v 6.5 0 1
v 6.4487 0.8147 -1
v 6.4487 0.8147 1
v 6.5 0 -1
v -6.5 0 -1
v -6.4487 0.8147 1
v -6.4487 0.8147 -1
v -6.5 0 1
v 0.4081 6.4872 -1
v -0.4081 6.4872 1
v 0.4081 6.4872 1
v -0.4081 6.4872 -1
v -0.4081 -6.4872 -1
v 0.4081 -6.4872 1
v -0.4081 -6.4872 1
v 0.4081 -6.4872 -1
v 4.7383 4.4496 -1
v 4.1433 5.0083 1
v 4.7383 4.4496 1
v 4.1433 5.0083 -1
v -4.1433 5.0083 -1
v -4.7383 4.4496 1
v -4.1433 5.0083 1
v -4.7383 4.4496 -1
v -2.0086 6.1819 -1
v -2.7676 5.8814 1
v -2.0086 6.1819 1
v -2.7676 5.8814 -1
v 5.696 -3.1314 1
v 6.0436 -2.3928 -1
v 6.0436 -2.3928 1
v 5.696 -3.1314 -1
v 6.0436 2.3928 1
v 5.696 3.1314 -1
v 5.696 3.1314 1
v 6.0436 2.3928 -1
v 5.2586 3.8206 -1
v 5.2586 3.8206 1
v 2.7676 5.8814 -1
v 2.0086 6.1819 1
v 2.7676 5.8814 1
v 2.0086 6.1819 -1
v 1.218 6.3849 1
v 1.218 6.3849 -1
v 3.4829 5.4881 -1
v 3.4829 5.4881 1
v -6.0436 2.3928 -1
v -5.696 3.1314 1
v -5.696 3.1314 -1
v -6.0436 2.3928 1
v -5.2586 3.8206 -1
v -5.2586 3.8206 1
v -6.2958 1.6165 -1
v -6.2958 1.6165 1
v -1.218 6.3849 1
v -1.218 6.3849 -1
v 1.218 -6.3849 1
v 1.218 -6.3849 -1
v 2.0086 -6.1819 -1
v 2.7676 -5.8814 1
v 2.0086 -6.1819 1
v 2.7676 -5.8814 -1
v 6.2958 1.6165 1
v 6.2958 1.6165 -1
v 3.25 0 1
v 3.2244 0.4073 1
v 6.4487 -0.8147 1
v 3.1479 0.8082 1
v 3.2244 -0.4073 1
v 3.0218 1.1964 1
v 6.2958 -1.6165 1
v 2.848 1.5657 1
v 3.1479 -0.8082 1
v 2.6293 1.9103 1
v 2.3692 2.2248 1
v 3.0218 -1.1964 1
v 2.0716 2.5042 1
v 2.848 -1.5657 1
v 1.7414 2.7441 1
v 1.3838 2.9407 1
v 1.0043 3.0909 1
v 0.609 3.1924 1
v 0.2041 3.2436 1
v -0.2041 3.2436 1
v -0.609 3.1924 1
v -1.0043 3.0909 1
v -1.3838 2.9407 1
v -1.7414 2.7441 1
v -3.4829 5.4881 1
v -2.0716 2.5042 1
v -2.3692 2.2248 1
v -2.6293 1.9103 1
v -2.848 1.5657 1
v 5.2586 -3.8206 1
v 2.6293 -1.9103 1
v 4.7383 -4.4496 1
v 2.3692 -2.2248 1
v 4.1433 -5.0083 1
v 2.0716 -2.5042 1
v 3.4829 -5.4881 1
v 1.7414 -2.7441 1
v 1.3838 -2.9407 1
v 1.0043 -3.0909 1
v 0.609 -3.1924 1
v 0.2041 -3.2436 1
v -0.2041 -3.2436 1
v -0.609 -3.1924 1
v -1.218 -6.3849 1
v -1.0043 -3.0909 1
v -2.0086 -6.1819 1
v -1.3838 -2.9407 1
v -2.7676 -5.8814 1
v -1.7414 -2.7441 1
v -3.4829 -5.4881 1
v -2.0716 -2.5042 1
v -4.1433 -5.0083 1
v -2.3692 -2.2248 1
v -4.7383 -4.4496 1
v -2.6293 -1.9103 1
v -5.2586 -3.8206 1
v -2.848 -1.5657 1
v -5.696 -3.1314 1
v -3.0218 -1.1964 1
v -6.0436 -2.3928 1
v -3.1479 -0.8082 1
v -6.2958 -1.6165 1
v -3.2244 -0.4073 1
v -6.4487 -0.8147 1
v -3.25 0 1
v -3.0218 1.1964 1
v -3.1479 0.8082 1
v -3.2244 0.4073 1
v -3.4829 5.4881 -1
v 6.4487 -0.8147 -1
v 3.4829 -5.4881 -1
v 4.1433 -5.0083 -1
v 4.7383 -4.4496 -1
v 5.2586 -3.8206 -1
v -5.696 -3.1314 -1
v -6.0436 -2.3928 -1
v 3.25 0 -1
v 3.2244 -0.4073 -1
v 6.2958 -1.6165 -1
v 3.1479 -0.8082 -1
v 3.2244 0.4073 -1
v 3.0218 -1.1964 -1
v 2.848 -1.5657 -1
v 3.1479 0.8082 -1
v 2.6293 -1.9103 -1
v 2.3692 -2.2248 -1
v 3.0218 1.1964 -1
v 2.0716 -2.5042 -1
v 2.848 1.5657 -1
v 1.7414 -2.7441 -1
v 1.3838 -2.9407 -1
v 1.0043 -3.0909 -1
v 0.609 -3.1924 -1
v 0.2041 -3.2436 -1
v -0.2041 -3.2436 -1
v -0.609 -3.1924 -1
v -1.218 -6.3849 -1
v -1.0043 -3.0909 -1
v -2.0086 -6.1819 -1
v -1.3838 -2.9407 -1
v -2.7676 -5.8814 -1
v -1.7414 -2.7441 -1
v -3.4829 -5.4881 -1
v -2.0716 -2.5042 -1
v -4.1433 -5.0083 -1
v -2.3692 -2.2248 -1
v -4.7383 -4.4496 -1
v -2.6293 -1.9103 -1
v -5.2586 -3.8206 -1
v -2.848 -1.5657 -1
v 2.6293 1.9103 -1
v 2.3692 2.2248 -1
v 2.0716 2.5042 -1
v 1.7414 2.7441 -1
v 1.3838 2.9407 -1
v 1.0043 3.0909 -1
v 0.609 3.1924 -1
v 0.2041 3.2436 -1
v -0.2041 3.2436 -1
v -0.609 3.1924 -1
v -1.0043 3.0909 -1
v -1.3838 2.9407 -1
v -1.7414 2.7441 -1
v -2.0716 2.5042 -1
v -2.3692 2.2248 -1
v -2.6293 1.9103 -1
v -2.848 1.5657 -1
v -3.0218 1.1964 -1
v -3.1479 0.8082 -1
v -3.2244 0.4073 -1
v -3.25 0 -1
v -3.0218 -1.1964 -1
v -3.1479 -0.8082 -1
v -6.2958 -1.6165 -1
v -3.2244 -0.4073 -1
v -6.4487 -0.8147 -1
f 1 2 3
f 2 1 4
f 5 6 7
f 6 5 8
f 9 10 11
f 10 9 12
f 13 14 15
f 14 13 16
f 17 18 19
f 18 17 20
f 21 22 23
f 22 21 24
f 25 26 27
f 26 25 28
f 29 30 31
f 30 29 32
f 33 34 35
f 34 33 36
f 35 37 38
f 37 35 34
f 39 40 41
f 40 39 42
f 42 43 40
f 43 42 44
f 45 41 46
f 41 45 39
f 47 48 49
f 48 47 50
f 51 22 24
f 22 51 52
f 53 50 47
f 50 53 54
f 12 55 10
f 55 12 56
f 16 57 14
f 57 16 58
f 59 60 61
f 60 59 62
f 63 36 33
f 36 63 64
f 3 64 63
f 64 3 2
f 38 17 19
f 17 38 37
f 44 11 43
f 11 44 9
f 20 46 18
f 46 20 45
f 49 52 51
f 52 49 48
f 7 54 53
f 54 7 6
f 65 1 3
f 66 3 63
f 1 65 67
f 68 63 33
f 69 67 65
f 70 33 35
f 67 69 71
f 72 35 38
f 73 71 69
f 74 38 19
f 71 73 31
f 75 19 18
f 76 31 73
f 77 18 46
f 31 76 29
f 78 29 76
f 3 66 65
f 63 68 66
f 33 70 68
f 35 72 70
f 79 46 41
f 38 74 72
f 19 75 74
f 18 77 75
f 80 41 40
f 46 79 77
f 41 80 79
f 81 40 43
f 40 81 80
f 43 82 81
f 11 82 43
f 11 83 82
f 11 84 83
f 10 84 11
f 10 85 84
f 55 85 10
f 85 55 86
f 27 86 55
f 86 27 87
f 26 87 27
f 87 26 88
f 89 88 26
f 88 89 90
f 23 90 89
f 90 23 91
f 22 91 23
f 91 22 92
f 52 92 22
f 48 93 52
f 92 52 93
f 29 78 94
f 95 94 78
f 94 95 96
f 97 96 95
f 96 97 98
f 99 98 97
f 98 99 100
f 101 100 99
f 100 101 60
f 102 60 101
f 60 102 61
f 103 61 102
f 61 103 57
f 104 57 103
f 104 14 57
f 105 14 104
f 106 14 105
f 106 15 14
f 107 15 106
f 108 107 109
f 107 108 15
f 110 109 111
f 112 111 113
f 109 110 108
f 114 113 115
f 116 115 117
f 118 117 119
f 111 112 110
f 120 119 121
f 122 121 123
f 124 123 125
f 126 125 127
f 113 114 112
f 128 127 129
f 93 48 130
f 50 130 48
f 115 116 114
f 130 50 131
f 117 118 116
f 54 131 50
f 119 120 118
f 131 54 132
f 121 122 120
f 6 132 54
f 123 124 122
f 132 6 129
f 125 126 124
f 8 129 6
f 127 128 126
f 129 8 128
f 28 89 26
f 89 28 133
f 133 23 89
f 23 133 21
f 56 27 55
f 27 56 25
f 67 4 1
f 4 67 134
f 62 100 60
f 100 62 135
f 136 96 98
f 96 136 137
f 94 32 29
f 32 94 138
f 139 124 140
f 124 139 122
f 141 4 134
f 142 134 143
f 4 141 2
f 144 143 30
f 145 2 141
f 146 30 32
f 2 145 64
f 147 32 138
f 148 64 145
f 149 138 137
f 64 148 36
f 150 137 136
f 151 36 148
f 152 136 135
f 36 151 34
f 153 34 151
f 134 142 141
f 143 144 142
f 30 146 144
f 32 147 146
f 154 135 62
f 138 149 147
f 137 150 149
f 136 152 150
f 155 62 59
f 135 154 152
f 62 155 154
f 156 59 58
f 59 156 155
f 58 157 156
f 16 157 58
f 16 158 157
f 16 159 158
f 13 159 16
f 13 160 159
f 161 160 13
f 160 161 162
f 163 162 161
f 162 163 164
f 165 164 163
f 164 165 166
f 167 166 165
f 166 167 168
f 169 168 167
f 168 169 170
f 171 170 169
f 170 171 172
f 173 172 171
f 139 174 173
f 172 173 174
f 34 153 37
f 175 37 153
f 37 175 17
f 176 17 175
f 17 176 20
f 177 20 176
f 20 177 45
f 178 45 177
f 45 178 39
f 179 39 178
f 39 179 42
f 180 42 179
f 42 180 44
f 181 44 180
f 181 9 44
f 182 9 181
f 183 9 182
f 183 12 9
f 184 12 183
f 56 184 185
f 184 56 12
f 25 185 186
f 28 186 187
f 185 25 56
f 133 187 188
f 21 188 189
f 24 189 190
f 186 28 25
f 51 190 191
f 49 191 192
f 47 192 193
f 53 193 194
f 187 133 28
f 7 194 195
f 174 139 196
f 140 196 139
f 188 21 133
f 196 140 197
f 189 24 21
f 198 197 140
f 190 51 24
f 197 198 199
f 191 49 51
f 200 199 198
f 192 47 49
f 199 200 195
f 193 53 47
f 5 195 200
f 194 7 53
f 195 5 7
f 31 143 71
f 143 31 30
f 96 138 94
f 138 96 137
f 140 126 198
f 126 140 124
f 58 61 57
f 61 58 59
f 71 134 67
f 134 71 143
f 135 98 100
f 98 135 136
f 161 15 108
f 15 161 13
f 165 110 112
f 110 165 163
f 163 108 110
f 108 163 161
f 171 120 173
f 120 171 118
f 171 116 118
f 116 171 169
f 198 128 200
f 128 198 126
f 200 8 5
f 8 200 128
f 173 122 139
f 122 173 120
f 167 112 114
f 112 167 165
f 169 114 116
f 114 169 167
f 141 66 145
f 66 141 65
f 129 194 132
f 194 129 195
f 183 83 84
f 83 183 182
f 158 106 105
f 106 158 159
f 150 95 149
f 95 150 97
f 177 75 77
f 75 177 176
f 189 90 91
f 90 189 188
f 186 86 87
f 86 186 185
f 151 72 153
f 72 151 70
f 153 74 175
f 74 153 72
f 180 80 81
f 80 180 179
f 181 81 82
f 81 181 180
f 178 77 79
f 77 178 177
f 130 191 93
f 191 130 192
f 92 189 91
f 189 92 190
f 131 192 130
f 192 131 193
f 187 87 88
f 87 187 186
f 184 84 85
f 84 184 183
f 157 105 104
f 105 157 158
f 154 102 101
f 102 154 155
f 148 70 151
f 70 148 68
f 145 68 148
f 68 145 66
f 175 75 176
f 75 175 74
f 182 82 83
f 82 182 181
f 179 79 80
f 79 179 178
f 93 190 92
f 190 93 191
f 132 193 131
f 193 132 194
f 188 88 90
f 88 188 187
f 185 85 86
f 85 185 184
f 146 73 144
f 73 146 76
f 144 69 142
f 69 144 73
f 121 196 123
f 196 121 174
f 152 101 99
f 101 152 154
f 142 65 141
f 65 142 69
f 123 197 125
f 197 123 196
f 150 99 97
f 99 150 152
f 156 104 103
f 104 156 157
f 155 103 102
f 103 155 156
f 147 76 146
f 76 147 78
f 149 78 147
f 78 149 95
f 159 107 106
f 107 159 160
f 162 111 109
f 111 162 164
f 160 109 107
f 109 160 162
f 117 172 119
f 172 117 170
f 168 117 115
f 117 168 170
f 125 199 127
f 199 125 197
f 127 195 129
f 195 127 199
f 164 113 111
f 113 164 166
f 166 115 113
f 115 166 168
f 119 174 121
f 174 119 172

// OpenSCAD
$fn = 50;


difference() {
	union() {
		translate(v = [0, 0, -1.0000000000]) {
			cylinder(h = 2, r = 6.5000000000);
		}
	}
	union() {
		translate(v = [0, 0, -100.0000000000]) {
			cylinder(h = 200, r = 3.2500000000);
		}
	}
}
